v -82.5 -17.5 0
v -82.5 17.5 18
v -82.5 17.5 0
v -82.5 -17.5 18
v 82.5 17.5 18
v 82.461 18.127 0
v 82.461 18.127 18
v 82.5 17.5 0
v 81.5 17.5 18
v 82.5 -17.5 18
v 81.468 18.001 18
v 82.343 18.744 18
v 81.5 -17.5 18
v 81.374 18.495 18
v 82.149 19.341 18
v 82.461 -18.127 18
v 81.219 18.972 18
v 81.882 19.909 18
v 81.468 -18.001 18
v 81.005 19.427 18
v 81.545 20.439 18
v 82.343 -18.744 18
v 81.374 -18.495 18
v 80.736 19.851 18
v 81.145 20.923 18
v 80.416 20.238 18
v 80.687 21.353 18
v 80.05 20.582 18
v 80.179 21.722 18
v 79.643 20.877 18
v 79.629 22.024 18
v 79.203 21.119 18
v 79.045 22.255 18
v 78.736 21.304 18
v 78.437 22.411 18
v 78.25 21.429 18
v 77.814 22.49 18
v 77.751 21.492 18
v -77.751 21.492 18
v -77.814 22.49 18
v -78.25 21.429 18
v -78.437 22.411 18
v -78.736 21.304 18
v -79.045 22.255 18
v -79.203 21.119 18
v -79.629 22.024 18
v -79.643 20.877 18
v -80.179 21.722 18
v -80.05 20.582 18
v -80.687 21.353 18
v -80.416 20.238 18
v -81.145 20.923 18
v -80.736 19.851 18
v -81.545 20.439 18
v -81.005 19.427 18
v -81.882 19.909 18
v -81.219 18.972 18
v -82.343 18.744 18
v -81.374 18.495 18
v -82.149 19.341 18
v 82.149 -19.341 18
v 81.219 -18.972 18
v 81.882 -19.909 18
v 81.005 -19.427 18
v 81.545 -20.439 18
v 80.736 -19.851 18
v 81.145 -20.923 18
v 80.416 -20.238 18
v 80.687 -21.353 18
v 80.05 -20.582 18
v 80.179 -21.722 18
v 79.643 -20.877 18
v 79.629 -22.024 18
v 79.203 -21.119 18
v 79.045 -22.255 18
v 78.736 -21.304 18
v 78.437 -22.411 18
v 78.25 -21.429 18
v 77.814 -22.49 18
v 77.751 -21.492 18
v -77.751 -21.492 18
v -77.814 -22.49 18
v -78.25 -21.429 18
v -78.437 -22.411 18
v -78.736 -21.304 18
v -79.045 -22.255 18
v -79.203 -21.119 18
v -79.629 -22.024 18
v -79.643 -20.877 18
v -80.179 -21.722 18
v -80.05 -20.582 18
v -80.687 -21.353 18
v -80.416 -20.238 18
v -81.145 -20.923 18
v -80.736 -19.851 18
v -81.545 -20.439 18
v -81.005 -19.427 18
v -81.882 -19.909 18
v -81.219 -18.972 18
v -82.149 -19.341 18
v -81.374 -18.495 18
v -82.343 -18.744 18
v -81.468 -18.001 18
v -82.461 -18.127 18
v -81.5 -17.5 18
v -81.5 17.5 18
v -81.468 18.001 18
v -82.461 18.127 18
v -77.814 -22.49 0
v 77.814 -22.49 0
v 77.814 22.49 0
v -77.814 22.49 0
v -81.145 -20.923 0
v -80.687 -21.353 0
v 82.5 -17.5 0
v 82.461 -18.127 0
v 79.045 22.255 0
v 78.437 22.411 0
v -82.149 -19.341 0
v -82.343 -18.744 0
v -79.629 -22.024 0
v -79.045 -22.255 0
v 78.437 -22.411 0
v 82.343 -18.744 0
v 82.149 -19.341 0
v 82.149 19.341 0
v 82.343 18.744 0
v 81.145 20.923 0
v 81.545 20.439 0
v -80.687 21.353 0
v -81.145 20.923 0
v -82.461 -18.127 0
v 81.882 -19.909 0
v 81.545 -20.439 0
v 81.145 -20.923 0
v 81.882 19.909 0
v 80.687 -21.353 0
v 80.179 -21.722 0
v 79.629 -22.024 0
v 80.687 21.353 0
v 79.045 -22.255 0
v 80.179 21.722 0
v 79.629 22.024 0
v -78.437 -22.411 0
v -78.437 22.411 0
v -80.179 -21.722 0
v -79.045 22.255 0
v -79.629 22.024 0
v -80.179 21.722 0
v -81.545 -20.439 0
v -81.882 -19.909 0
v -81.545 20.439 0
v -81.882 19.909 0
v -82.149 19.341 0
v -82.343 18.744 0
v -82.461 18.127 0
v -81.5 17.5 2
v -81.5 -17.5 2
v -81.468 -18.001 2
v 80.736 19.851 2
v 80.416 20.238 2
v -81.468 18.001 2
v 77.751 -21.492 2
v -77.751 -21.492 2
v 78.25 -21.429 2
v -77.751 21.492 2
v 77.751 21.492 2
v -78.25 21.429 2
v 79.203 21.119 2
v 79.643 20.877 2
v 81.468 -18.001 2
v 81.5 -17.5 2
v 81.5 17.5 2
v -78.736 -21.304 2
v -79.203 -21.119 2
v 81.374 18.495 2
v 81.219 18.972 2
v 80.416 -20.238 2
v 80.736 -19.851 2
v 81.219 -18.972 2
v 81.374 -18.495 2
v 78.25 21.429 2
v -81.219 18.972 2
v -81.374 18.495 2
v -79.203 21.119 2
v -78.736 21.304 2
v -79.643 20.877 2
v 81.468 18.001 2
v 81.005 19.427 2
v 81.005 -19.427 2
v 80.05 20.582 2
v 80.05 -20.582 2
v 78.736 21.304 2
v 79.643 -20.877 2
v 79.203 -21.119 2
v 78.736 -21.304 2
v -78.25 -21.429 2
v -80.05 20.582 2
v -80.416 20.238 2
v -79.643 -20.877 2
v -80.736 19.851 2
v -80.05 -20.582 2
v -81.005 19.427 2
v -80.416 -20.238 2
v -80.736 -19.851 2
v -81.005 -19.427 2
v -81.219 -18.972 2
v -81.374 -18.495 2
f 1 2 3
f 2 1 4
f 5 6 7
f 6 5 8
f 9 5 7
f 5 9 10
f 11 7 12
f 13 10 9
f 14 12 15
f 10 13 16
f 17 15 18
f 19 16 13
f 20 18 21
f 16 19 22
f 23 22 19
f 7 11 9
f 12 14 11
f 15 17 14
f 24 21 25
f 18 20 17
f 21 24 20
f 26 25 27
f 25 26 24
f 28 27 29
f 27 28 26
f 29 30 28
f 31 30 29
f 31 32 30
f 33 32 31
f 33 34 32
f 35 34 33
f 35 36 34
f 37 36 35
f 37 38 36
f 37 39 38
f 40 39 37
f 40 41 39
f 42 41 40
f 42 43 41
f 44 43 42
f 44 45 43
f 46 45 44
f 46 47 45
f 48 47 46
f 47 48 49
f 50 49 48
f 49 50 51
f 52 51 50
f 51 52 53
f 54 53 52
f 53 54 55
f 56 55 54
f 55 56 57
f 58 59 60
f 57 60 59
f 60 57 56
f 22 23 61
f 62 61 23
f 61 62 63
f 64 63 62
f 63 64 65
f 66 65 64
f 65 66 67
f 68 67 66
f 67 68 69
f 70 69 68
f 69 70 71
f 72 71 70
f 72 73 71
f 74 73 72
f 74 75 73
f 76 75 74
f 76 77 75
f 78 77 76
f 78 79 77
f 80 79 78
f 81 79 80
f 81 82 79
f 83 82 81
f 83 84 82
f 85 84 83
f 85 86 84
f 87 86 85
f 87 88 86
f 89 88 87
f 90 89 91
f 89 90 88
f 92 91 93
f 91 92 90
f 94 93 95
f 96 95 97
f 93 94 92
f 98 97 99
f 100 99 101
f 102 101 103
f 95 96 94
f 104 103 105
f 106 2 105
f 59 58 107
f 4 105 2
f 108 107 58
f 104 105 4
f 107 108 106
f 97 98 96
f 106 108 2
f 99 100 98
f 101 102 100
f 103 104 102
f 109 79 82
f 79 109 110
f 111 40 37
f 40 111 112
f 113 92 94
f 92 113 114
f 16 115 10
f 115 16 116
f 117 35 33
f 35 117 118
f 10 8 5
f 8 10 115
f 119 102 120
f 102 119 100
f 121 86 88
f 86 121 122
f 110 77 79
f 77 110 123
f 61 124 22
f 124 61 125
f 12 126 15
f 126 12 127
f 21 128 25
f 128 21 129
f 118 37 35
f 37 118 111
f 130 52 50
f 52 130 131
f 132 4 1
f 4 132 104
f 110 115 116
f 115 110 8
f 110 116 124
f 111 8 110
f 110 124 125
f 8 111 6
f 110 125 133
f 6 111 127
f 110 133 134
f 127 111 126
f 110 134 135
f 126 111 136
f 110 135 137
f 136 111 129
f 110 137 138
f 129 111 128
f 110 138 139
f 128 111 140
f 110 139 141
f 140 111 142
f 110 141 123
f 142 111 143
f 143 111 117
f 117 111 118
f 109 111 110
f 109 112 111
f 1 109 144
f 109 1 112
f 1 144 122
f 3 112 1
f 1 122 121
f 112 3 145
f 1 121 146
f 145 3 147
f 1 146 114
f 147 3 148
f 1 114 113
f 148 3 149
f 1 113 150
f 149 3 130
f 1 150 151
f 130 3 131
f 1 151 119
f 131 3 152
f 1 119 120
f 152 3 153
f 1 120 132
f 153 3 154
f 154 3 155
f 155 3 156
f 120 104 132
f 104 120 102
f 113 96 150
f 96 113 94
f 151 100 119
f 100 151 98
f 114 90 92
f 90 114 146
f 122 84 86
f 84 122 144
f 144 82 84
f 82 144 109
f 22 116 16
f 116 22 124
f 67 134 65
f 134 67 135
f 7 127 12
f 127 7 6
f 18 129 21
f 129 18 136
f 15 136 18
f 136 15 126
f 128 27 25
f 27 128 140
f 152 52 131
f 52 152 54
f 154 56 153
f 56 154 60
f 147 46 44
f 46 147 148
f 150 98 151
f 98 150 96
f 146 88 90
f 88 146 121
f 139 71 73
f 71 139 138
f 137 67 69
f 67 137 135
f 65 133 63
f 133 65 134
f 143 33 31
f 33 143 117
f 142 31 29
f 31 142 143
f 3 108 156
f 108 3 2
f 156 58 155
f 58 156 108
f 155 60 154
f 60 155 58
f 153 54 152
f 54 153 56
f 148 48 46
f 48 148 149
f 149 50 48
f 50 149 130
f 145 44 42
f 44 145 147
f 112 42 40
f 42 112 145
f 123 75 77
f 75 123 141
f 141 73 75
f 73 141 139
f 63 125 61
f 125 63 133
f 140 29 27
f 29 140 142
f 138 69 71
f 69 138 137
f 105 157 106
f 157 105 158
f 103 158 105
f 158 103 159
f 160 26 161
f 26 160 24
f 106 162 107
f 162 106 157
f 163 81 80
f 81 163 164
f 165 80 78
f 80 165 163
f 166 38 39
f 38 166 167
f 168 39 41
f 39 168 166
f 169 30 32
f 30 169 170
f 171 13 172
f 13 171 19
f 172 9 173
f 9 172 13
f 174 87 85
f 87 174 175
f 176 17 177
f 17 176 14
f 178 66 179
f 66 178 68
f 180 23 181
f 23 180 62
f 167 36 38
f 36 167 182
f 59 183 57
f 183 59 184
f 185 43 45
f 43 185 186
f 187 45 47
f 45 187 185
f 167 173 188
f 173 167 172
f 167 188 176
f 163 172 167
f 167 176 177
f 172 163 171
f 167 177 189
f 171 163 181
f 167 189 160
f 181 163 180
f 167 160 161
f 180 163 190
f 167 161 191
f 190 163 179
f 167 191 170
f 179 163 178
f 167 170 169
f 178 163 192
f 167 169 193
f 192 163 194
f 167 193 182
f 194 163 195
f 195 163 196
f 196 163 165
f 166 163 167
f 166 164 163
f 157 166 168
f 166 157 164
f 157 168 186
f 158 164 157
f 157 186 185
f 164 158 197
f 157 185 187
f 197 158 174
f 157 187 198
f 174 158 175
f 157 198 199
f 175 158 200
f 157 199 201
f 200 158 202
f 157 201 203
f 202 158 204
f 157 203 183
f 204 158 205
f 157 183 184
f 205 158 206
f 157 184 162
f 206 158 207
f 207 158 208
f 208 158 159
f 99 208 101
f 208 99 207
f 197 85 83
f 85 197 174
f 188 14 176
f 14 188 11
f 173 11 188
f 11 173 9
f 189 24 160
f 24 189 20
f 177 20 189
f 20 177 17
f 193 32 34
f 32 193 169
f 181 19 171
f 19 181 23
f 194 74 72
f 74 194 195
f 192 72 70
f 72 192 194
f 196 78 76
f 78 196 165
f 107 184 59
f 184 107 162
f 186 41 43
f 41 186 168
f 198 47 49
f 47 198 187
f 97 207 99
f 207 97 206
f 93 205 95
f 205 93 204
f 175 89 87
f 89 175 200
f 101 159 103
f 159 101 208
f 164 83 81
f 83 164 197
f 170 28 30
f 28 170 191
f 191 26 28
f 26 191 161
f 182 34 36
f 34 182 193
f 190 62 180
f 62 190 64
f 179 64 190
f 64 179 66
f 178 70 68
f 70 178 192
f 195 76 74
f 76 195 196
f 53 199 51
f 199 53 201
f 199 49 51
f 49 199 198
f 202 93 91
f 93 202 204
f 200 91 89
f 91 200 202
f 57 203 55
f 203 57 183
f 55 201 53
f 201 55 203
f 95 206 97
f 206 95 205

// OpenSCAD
$fn = 50;


difference() {
	union() {
		hull() {
			translate(v = [-77.5000000000, 17.5000000000, 0]) {
				cylinder(h = 18, r = 5);
			}
			translate(v = [77.5000000000, 17.5000000000, 0]) {
				cylinder(h = 18, r = 5);
			}
			translate(v = [-77.5000000000, -17.5000000000, 0]) {
				cylinder(h = 18, r = 5);
			}
			translate(v = [77.5000000000, -17.5000000000, 0]) {
				cylinder(h = 18, r = 5);
			}
		}
	}
	union() {
		translate(v = [0, 0, 2]) {
			hull() {
				translate(v = [-77.5000000000, 17.5000000000, 0]) {
					cylinder(h = 16, r = 4);
				}
				translate(v = [77.5000000000, 17.5000000000, 0]) {
					cylinder(h = 16, r = 4);
				}
				translate(v = [-77.5000000000, -17.5000000000, 0]) {
					cylinder(h = 16, r = 4);
				}
				translate(v = [77.5000000000, -17.5000000000, 0]) {
					cylinder(h = 16, r = 4);
				}
			}
		}
	}
}
